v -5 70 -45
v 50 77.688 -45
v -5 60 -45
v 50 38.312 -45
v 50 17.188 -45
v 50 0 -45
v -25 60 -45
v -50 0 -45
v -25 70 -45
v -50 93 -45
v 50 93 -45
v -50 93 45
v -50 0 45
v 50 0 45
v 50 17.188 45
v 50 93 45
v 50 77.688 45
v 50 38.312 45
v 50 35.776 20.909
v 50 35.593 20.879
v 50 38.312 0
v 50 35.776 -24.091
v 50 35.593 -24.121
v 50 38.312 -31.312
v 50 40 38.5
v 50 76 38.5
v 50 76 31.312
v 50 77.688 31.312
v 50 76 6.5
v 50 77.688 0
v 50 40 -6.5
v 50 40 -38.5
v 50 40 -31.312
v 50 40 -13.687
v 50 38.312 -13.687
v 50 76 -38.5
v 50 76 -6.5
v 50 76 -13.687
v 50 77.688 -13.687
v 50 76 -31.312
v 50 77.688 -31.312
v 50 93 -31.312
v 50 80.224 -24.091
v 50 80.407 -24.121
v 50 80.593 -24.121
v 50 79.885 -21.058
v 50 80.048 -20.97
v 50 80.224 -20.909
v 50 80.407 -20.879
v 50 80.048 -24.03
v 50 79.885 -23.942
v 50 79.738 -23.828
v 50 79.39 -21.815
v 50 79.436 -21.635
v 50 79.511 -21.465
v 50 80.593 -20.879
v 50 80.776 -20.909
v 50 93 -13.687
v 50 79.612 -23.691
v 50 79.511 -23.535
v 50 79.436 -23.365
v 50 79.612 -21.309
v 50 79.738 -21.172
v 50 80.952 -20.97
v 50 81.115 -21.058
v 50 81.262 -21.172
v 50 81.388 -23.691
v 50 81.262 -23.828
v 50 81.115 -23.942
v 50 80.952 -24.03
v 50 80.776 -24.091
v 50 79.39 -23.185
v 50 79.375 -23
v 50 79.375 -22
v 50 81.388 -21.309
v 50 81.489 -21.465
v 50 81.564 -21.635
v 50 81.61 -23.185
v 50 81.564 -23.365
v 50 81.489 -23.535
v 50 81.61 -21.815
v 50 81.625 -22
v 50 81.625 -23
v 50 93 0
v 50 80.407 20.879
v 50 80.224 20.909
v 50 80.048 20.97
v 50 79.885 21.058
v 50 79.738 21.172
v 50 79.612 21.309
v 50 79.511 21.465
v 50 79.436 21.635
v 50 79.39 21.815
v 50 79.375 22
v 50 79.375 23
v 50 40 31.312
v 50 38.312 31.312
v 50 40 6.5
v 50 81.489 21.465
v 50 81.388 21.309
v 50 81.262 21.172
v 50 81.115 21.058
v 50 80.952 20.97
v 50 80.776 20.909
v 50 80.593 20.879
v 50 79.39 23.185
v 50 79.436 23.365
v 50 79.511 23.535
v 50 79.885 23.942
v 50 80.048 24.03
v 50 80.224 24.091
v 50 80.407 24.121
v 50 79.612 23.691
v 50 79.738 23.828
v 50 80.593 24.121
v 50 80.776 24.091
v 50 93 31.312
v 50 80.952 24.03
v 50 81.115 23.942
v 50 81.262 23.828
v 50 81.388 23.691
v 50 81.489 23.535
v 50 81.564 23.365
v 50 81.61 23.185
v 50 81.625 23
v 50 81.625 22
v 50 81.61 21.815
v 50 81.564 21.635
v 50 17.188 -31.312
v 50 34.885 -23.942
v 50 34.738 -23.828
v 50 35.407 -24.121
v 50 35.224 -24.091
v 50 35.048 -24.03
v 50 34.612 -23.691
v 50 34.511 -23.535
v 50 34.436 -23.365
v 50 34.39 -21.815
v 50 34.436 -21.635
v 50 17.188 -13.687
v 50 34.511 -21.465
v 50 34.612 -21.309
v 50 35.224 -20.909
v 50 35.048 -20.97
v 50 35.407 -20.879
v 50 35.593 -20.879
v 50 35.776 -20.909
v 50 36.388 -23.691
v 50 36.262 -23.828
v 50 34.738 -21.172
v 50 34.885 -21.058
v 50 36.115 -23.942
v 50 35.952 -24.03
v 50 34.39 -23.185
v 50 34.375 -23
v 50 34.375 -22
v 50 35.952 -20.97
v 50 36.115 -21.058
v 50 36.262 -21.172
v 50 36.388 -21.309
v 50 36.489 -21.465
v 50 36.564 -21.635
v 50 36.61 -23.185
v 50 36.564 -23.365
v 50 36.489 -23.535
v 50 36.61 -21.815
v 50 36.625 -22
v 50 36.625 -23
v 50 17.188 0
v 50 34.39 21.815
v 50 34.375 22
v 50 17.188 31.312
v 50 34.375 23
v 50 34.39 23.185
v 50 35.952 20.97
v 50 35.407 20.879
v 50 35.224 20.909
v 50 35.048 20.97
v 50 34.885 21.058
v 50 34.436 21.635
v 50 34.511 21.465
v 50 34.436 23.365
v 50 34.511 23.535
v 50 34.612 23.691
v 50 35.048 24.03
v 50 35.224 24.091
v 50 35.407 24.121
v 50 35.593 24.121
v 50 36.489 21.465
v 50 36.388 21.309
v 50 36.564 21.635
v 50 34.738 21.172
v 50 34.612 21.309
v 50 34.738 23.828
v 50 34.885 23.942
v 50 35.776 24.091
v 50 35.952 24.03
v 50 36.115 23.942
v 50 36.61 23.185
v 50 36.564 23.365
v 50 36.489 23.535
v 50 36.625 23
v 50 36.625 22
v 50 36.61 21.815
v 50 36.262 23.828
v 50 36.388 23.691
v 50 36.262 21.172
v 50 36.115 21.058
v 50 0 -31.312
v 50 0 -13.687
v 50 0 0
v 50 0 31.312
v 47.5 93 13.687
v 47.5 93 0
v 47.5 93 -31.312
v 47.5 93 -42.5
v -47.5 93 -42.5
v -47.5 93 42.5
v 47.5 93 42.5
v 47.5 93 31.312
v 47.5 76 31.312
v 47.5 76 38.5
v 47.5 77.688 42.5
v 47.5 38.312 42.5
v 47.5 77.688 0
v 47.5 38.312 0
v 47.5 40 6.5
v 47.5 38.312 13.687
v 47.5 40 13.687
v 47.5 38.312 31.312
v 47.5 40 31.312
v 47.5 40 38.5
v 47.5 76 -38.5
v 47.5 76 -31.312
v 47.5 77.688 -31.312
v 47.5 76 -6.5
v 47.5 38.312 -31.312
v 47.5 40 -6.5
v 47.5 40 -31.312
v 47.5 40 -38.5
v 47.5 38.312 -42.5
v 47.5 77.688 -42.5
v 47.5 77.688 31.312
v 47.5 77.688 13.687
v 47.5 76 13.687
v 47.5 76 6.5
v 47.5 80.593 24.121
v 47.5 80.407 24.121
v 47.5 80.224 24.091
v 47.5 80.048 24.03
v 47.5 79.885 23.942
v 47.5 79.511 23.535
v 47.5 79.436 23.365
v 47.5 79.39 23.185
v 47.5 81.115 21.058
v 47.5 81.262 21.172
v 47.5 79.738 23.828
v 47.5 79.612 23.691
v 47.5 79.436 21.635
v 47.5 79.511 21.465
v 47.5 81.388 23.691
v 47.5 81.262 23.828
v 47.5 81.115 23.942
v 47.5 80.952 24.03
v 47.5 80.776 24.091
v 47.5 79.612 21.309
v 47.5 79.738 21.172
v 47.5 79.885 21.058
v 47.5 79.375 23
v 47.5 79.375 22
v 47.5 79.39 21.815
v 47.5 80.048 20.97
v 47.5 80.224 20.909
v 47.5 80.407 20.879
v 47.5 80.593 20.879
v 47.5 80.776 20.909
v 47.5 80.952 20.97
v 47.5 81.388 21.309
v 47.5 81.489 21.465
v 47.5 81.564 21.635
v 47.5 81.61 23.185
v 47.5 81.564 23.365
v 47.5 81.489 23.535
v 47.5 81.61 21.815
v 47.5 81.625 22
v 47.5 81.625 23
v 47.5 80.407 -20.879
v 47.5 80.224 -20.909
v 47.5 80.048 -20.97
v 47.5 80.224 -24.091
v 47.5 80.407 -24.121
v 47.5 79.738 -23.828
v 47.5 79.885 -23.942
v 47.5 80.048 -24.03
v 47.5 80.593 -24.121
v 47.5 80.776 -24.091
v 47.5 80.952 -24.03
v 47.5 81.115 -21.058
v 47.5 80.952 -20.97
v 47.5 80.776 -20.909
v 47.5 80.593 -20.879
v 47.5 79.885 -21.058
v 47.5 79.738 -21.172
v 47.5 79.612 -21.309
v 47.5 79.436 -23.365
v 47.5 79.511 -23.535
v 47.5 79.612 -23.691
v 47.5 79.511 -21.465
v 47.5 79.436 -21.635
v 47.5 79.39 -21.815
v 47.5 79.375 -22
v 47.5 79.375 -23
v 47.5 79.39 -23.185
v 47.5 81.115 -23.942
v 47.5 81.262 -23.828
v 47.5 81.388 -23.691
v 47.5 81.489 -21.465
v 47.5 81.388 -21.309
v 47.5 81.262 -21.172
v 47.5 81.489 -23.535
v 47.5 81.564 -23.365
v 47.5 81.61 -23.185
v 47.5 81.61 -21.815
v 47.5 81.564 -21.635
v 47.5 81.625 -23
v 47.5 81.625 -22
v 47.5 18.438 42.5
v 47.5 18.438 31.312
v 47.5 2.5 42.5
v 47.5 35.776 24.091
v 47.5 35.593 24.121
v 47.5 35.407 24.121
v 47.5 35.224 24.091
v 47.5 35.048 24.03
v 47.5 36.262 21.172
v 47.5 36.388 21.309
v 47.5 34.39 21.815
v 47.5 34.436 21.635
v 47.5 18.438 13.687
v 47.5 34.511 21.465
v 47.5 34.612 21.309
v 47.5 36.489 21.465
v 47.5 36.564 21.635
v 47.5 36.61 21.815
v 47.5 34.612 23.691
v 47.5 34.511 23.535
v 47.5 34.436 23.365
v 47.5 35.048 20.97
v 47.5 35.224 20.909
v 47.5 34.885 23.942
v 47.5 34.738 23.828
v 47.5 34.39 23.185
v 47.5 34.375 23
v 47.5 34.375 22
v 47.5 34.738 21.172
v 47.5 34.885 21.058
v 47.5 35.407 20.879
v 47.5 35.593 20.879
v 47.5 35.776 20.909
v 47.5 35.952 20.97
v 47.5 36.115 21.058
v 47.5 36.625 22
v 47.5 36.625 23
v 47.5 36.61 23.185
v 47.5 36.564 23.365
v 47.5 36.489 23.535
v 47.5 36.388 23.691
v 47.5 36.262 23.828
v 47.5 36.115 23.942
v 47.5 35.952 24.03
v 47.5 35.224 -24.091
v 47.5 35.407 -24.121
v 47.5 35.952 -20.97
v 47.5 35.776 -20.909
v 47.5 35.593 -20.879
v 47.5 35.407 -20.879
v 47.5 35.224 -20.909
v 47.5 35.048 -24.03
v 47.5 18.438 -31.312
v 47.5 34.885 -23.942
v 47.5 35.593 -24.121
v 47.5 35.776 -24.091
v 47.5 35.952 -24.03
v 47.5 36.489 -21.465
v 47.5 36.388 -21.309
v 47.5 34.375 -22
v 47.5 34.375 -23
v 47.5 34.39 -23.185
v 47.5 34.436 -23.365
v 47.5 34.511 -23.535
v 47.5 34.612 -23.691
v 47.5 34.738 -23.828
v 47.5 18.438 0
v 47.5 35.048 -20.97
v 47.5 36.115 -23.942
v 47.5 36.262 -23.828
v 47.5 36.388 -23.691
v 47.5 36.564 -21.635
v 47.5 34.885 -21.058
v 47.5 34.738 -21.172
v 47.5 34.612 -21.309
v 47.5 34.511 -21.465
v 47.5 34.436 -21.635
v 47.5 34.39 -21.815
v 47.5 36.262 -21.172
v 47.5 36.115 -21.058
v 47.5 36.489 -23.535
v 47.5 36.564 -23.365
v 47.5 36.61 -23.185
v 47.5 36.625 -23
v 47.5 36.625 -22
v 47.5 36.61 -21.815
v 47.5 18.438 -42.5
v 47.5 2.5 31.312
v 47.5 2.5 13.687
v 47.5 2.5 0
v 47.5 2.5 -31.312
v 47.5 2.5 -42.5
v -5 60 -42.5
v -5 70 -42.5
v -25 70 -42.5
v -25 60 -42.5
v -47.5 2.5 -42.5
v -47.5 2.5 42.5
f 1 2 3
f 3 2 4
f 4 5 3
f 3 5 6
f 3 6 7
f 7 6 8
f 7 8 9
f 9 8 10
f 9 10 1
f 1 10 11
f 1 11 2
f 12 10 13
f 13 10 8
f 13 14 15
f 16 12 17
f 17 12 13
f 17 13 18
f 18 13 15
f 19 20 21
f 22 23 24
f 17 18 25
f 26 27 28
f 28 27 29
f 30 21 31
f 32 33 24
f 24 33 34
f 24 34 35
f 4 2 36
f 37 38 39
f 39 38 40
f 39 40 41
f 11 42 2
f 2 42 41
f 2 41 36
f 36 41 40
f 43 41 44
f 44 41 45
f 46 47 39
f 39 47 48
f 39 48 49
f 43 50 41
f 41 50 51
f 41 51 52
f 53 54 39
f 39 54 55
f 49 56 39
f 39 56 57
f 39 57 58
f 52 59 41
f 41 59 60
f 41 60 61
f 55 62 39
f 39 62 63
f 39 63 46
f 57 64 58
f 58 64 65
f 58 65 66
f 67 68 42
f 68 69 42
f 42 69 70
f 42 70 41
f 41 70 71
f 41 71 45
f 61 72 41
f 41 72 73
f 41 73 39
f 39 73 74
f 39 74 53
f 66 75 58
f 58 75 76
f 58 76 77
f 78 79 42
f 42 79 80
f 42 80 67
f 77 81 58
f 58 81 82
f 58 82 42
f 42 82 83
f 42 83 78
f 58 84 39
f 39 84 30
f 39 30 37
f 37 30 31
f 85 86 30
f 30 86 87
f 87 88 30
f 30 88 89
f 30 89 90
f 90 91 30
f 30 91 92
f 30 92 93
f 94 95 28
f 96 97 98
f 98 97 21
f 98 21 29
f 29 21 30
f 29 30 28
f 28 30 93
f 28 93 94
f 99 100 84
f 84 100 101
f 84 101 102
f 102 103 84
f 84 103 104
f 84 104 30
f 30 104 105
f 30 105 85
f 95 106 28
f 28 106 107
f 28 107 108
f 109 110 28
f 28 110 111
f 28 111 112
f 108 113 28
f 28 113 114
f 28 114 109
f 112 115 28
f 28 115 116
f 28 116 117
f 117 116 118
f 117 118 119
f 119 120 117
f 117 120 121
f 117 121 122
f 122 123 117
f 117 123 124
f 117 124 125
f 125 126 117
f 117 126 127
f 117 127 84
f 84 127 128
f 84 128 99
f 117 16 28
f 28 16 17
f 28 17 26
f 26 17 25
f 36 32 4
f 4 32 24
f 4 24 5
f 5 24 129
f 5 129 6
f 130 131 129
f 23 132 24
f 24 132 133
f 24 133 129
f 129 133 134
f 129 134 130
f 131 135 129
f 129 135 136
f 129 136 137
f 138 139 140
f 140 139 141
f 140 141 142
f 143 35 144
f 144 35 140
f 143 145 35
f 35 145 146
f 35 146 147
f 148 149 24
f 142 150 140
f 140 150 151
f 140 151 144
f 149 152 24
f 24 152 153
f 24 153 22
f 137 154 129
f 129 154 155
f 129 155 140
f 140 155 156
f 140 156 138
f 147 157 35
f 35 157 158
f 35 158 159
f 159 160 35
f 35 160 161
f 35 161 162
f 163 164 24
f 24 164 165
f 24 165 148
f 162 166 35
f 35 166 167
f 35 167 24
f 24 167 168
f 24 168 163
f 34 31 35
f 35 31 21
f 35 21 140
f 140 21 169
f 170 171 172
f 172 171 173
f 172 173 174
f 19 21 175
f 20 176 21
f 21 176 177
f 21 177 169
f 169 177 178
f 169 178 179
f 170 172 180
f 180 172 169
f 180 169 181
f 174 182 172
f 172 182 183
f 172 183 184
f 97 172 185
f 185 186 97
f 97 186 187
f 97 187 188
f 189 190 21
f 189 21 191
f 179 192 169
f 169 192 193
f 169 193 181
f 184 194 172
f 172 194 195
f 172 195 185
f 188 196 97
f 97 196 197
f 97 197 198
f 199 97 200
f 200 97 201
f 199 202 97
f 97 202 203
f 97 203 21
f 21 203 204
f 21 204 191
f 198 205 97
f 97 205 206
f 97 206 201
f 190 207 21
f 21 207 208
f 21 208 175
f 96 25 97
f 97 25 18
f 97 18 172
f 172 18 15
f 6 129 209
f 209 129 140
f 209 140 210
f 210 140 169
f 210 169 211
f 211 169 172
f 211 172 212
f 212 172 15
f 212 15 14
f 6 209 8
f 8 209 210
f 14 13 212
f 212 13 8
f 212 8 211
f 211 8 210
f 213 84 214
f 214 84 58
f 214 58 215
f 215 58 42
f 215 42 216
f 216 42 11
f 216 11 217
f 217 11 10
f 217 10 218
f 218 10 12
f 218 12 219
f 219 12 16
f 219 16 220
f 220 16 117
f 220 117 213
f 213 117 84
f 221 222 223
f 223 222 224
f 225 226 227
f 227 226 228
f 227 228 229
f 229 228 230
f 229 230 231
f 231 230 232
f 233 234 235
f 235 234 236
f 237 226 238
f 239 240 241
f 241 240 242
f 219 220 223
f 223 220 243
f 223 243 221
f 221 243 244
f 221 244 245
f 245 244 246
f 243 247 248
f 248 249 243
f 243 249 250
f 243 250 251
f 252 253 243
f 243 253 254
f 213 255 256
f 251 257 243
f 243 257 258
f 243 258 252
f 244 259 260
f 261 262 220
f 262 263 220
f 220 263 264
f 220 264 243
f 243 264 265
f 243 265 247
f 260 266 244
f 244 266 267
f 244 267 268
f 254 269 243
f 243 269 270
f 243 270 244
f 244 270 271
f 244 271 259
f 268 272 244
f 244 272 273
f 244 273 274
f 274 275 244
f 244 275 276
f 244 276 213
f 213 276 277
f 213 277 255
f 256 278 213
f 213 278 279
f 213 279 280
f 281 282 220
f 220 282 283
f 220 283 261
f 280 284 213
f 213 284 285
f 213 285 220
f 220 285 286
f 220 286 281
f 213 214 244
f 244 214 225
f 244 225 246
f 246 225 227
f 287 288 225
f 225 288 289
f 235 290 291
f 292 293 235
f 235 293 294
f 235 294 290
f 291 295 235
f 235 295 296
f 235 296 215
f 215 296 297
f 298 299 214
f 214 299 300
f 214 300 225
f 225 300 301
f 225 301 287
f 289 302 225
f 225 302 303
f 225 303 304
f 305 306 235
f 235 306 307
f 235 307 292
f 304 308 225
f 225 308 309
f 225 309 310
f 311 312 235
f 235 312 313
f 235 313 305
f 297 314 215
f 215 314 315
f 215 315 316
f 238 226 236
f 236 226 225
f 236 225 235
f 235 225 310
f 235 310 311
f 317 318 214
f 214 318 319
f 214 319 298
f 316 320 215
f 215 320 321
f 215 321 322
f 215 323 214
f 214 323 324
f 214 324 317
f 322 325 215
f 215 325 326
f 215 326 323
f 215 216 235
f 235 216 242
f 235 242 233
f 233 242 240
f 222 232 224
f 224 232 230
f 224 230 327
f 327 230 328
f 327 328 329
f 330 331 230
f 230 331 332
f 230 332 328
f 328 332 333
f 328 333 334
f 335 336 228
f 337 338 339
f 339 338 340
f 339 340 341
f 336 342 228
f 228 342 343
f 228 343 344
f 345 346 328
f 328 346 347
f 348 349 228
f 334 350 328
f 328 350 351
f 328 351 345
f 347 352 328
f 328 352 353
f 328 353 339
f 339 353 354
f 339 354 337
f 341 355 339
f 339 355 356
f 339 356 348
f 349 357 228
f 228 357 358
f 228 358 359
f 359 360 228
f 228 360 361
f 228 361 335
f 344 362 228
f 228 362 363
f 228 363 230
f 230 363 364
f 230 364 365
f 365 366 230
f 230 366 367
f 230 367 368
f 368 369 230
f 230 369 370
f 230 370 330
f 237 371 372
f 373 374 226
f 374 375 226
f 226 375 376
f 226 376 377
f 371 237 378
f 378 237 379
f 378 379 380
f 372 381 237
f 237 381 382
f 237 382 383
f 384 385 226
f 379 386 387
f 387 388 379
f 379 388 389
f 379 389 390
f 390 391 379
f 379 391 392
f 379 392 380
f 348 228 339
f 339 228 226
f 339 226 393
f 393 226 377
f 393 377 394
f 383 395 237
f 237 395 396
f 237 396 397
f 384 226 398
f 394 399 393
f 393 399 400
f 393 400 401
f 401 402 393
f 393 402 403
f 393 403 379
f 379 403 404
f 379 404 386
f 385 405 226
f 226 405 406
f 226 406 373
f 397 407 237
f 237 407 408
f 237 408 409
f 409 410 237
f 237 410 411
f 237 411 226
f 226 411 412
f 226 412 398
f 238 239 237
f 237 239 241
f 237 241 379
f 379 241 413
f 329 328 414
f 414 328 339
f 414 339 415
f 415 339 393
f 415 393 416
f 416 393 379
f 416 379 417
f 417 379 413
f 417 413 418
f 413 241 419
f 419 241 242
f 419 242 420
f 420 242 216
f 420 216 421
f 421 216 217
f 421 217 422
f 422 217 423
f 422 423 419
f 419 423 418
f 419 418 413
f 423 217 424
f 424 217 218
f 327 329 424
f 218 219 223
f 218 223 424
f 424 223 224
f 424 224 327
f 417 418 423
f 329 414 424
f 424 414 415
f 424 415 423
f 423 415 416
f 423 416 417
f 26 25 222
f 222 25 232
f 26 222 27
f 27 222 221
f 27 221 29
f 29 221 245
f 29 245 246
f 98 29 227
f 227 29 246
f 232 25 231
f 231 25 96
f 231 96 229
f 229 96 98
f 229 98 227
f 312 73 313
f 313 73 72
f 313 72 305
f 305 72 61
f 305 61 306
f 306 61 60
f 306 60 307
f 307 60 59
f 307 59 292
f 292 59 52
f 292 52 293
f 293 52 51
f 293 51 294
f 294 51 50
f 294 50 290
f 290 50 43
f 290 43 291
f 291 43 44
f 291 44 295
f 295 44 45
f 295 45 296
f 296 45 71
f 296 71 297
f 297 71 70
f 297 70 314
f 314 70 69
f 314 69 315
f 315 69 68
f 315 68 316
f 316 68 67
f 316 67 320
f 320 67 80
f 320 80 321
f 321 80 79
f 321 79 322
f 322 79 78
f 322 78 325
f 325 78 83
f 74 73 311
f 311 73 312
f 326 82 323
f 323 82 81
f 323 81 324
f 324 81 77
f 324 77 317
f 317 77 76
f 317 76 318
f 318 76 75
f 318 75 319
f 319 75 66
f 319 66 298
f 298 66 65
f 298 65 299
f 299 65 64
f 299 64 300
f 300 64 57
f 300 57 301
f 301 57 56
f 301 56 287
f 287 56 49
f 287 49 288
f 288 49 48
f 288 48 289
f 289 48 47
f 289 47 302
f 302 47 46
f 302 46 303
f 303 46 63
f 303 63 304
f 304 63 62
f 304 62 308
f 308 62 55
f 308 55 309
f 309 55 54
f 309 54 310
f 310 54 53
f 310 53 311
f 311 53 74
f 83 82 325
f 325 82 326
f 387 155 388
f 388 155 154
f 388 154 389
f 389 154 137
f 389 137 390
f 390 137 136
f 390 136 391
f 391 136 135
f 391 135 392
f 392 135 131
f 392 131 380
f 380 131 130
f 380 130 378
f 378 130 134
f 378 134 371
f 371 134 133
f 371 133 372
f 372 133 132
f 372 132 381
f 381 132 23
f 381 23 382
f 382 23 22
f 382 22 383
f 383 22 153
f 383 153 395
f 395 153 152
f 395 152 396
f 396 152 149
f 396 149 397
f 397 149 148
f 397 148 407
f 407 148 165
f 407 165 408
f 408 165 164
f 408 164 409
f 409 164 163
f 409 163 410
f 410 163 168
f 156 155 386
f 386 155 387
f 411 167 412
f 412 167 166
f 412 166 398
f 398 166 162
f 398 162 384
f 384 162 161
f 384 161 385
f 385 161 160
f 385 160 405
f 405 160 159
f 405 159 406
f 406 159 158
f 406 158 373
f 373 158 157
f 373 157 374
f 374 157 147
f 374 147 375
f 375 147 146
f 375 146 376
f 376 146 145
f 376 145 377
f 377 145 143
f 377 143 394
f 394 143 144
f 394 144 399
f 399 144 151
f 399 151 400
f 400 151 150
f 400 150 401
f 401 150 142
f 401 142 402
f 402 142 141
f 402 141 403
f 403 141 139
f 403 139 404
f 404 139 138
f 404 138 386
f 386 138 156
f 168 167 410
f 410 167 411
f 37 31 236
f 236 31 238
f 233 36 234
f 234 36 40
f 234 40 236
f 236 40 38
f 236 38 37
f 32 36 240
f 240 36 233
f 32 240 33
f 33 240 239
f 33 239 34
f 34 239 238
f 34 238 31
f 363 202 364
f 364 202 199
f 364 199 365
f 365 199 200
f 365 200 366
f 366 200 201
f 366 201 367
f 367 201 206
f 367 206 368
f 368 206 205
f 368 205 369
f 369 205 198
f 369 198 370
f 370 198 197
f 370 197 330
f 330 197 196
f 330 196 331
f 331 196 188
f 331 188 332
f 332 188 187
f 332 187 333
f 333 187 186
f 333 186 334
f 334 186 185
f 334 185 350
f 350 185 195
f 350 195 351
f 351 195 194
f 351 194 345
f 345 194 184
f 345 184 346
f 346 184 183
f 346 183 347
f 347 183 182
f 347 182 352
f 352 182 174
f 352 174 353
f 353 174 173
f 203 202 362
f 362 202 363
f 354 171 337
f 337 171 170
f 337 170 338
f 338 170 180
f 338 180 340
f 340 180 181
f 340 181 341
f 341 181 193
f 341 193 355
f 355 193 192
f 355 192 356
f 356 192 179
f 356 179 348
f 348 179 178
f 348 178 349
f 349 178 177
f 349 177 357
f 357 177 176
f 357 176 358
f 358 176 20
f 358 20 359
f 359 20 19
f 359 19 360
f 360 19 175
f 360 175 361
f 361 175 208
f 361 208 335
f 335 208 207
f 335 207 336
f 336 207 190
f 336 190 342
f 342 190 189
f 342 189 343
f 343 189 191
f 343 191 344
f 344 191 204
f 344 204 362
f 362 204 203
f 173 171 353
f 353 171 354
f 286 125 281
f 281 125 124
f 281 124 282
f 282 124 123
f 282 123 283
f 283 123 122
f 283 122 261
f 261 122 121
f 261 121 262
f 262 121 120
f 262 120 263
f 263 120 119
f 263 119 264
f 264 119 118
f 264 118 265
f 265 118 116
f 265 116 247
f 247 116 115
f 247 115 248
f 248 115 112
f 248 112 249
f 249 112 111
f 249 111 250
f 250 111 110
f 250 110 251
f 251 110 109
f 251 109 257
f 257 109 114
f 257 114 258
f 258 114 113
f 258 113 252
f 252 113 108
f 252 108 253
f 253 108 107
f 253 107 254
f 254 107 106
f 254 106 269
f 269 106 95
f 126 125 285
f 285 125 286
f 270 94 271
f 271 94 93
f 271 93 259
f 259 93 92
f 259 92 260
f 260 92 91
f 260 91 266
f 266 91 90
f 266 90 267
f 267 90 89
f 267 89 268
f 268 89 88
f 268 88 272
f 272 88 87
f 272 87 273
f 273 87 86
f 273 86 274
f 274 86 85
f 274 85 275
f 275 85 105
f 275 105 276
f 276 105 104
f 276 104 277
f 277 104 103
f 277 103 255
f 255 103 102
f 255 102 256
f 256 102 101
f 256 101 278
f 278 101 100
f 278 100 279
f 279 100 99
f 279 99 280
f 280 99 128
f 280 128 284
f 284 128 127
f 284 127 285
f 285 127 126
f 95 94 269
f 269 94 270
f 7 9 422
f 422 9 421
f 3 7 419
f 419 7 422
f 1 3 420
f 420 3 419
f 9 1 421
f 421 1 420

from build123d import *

# Parameters (mm, degrees)
SKETCH1_W           = 100
SKETCH1_H           = 90
BOSS_EXTRUDE1_DEPTH = 2.5
SKETCH1_3_W         = 100
SKETCH1_3_H         = 90
SKETCH1_3_W_2       = 95
SKETCH1_3_H_2       = 85
BOSS_EXTRUDE2_DEPTH = 93
SKETCH2_W           = 32
SKETCH2_H           = 36
CUT_EXTRUDE1_DEPTH  = 5
SKETCH3_W           = 20
SKETCH3_H           = 10
CUT_EXTRUDE2_DEPTH  = 5


with BuildPart() as part:
    # Sketch1 → Boss-Extrude1 (new body)
    with BuildSketch(Plane(origin=(0, 0, 0), x_dir=(1, 0, 0), z_dir=(0, 1, 0))):
        Rectangle(SKETCH1_W, SKETCH1_H)
    extrude(amount=BOSS_EXTRUDE1_DEPTH)

    # Sketch1<3> → Boss-Extrude2 (add)
    with BuildSketch(Plane(origin=(0, 0, 0), x_dir=(1, 0, 0), z_dir=(0, 1, 0))):
        Rectangle(SKETCH1_3_W, SKETCH1_3_H)
        Rectangle(SKETCH1_3_W_2, SKETCH1_3_H_2, mode=Mode.SUBTRACT)
    extrude(amount=BOSS_EXTRUDE2_DEPTH)

    # Sketch2 → Cut-Extrude1 (cut)
    with BuildSketch(Plane(origin=(50, 0, 0), x_dir=(0, 0, -1), z_dir=(1, 0, 0))):
        with Locations((-22.5, 58)):
            Rectangle(SKETCH2_W, SKETCH2_H)
        with BuildLine():
            Line((-23, 81.625), (-22, 81.625))
            ThreePointArc((-22, 81.625), (-20.875, 80.5), (-22, 79.375))
            Line((-22, 79.375), (-23, 79.375))
            ThreePointArc((-23, 79.375), (-24.125, 80.5), (-23, 81.625))
        make_face()
        with BuildLine():
            Line((-23, 34.375), (-22, 34.375))
            ThreePointArc((-22, 34.375), (-20.875, 35.5), (-22, 36.625))
            Line((-22, 36.625), (-23, 36.625))
            ThreePointArc((-23, 36.625), (-24.125, 35.5), (-23, 34.375))
        make_face()
        with Locations((22.5, 58)):
            Rectangle(SKETCH2_W, SKETCH2_H)
        with BuildLine():
            Line((23, 34.375), (22, 34.375))
            ThreePointArc((22, 34.375), (20.875, 35.5), (22, 36.625))
            Line((22, 36.625), (23, 36.625))
            ThreePointArc((23, 36.625), (24.125, 35.5), (23, 34.375))
        make_face()
        with BuildLine():
            Line((23, 81.625), (22, 81.625))
            ThreePointArc((22, 81.625), (20.875, 80.5), (22, 79.375))
            Line((22, 79.375), (23, 79.375))
            ThreePointArc((23, 79.375), (24.125, 80.5), (23, 81.625))
        make_face()
    extrude(amount=-CUT_EXTRUDE1_DEPTH, mode=Mode.SUBTRACT)

    # Sketch3 → Cut-Extrude2 (cut)
    with BuildSketch(Plane(origin=(0, 0, -45), x_dir=(-1, 0, 0), z_dir=(0, 0, -1))):
        with Locations((15, 65)):
            Rectangle(SKETCH3_W, SKETCH3_H)
    extrude(amount=-CUT_EXTRUDE2_DEPTH, mode=Mode.SUBTRACT)


solid = part.part
